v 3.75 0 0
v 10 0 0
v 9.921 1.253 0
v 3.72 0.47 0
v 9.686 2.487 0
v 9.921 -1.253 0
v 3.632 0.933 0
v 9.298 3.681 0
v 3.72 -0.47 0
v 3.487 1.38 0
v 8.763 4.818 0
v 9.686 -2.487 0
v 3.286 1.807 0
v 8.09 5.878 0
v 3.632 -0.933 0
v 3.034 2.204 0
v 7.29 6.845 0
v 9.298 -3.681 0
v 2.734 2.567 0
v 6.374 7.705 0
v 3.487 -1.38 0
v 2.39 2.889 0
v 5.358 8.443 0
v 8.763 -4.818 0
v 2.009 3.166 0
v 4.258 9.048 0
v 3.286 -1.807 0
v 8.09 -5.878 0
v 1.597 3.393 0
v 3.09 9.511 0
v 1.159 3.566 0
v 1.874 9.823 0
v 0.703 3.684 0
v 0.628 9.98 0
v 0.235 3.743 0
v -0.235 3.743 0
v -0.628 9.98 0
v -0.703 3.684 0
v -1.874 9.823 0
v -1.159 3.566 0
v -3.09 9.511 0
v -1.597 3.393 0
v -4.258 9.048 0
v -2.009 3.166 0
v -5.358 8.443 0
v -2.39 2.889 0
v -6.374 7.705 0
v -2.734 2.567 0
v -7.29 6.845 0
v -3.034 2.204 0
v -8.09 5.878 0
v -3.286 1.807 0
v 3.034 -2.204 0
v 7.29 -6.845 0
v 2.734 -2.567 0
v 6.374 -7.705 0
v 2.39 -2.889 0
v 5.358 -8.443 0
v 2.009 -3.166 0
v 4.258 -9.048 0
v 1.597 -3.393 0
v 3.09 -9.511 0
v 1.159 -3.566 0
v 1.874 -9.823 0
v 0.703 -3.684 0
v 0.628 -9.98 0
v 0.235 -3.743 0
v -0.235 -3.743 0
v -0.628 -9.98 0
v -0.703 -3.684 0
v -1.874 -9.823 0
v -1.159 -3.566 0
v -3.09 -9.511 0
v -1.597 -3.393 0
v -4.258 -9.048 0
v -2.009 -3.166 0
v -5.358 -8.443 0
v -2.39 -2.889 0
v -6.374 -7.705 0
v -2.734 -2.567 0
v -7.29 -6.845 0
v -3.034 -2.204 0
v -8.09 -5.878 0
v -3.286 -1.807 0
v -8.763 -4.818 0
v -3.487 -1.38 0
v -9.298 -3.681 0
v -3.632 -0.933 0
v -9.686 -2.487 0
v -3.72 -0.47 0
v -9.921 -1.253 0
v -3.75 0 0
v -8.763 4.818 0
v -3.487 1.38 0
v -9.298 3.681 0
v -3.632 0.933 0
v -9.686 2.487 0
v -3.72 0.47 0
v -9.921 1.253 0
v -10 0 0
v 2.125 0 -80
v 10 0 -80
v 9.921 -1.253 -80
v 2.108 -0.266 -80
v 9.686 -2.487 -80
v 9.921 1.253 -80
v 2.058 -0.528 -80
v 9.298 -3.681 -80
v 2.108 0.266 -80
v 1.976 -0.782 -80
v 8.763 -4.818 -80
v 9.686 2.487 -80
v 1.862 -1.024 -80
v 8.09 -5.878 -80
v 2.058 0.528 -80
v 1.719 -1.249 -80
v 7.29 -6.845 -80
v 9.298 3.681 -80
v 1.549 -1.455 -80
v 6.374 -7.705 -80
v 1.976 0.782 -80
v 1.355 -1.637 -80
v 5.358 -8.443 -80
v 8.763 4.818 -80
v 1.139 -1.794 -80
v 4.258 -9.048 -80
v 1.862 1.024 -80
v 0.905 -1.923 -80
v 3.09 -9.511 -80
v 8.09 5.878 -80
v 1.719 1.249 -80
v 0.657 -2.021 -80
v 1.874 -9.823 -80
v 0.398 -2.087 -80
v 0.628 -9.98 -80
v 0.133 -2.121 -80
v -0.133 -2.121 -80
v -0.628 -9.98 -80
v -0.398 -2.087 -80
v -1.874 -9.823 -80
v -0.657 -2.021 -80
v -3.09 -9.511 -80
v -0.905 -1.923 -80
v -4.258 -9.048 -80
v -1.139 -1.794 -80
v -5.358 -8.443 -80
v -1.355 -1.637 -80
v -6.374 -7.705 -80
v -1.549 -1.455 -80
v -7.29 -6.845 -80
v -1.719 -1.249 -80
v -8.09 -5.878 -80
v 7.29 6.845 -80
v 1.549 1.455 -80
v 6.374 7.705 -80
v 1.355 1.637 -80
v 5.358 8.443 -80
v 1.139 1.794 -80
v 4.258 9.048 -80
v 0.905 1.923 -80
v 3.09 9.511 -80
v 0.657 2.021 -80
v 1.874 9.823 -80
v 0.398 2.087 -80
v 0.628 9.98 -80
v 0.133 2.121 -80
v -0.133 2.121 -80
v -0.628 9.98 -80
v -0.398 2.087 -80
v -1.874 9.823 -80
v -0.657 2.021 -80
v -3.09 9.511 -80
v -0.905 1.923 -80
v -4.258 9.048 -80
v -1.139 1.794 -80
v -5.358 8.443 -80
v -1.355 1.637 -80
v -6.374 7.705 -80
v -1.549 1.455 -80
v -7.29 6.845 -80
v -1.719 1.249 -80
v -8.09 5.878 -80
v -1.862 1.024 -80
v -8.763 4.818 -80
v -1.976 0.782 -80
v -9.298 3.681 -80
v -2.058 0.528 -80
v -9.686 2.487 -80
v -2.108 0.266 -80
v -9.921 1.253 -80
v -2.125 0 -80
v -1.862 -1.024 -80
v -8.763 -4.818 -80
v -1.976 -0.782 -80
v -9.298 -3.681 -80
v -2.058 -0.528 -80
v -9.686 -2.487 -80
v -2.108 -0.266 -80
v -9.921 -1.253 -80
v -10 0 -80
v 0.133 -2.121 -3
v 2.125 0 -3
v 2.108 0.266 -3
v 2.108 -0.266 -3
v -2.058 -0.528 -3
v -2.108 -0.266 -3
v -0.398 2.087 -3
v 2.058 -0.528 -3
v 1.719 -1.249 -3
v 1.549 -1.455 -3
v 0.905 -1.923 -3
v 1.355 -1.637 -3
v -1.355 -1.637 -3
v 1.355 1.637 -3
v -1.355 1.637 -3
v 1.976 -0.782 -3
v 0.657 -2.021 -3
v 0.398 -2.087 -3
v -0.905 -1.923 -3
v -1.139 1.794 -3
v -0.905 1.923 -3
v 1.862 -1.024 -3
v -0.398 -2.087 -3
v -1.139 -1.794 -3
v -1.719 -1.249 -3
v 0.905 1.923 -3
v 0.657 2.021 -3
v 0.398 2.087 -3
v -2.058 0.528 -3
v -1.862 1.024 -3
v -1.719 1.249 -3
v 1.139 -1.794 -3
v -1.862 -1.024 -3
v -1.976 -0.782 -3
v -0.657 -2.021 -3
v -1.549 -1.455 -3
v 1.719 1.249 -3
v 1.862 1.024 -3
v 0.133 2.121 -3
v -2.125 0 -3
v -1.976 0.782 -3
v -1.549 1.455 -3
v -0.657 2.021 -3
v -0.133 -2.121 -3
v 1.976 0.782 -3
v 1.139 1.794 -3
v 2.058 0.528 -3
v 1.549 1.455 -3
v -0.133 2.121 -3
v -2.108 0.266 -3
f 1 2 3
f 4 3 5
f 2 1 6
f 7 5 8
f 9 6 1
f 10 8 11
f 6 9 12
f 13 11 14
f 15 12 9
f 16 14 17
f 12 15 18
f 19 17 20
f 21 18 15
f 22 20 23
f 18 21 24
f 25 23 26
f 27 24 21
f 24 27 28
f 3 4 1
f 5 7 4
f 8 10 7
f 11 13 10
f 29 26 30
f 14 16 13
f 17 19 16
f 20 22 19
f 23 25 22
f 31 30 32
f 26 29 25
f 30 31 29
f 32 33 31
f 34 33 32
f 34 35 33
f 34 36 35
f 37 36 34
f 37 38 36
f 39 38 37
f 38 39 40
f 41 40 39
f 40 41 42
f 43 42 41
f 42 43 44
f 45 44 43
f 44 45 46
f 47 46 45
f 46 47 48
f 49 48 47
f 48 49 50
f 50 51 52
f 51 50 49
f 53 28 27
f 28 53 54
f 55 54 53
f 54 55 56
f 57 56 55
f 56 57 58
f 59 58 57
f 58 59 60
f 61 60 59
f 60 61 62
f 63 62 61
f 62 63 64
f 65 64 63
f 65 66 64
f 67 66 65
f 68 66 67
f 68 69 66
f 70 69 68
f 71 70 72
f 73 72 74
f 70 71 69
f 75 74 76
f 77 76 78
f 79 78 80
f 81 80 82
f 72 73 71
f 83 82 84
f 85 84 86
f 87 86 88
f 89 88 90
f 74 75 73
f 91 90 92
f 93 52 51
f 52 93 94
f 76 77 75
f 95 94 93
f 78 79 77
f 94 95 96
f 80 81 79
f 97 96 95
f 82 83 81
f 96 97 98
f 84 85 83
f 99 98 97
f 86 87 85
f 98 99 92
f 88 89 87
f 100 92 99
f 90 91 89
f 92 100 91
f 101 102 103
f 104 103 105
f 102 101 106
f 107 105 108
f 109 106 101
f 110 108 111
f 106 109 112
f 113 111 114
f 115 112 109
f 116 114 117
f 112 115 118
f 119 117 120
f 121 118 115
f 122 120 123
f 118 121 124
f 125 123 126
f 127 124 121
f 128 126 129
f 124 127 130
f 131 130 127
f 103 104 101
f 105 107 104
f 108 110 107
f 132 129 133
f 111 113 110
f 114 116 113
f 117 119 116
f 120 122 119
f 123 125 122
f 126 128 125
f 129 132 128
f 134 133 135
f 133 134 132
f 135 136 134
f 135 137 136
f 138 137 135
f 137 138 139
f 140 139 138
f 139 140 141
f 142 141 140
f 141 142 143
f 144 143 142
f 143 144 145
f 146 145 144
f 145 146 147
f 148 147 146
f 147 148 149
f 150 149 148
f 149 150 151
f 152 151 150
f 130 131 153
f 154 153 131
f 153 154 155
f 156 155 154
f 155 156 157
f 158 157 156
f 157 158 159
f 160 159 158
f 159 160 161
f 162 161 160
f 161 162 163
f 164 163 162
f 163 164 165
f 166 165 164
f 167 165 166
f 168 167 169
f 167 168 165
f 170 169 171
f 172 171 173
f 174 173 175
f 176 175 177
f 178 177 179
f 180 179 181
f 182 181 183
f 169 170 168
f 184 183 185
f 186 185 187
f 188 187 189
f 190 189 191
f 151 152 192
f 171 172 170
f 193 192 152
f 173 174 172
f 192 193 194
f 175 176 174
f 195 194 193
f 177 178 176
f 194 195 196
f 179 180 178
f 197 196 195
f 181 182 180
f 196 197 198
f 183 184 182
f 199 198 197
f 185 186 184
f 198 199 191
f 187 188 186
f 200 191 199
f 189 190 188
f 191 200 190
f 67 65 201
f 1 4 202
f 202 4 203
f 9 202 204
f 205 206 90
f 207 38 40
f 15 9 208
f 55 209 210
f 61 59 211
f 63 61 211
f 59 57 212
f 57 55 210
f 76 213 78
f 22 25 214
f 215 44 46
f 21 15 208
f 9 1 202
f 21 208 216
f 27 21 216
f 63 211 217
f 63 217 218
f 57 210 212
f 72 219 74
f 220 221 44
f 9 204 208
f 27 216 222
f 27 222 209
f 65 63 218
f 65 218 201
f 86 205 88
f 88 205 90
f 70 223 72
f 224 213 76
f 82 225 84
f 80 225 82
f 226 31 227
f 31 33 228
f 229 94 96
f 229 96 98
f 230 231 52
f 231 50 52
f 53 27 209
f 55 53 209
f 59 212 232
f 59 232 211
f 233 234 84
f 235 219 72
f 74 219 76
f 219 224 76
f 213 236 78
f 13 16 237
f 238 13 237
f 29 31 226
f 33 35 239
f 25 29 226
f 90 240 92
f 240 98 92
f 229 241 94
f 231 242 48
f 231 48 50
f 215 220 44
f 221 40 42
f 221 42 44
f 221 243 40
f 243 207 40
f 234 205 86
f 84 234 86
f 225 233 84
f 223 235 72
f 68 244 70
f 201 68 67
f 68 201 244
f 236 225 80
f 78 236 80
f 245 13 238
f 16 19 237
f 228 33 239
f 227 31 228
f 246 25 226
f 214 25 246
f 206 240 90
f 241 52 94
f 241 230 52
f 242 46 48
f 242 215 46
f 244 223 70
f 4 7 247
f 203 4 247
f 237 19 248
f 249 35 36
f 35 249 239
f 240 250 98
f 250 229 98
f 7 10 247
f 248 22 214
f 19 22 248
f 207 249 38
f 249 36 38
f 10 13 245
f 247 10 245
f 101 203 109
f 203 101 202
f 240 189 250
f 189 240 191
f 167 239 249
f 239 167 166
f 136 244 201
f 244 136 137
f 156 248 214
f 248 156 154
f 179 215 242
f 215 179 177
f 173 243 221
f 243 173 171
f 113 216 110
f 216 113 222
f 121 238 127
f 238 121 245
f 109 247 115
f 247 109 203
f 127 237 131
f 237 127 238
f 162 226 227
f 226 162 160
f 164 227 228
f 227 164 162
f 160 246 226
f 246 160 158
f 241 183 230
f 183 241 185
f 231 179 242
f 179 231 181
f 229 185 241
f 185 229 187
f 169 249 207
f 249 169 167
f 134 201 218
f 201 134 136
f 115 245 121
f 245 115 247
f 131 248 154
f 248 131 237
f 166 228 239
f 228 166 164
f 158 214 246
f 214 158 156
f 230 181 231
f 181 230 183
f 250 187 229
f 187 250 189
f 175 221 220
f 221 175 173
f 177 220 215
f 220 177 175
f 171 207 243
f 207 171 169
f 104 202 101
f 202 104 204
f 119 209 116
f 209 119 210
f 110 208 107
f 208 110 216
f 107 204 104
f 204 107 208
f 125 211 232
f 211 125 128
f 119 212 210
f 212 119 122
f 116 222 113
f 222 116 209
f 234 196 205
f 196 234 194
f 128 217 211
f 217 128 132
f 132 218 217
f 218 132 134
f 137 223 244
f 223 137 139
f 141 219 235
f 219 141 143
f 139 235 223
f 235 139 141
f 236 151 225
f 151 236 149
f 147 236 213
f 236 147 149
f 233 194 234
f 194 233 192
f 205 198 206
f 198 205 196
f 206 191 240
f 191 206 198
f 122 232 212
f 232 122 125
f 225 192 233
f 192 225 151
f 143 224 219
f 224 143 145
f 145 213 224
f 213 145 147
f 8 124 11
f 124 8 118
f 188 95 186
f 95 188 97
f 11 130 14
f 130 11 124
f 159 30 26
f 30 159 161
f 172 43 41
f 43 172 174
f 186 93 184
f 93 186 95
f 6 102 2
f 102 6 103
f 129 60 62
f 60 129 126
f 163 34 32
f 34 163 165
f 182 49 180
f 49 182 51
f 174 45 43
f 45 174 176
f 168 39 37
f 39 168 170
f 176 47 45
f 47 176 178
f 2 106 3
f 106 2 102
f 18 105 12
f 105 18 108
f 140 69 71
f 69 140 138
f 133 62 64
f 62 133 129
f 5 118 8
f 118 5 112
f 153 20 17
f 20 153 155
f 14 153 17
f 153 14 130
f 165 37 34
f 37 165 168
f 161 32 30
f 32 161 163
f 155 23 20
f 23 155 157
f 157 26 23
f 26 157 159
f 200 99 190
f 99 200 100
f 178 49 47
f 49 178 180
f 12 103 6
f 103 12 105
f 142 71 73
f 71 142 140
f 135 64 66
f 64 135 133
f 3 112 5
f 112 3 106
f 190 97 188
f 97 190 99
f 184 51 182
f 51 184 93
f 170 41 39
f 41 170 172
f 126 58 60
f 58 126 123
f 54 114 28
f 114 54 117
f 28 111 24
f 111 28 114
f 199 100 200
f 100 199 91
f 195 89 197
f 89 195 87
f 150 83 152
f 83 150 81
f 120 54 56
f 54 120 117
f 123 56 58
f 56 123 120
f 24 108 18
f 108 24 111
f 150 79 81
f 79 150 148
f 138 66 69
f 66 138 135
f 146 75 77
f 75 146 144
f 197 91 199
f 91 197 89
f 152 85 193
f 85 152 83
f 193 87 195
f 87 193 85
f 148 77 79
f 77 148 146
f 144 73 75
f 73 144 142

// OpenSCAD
$fn = 50;


difference() {
	union() {
		translate(v = [0, 0, -80.0000000000]) {
			cylinder(h = 80, r = 10.0000000000);
		}
		cylinder(h = 0, r = 13.0000000000);
	}
	union() {
		translate(v = [0, 0, 0]) {
			rotate(a = [0, 0, 0]) {
				difference() {
					union() {
						#translate(v = [0, 0, -80.0000000000]) {
							cylinder(h = 80, r = 2.0000000000);
						}
						#translate(v = [0, 0, -3]) {
							cylinder(h = 3, r1 = 2.1250000000, r2 = 3.7500000000);
						}
						#translate(v = [0, 0, -80.0000000000]) {
							cylinder(h = 80, r = 2.1250000000);
						}
						#translate(v = [0, 0, -80.0000000000]) {
							cylinder(h = 80, r = 2.0000000000);
						}
					}
					union();
				}
			}
		}
	}
}
